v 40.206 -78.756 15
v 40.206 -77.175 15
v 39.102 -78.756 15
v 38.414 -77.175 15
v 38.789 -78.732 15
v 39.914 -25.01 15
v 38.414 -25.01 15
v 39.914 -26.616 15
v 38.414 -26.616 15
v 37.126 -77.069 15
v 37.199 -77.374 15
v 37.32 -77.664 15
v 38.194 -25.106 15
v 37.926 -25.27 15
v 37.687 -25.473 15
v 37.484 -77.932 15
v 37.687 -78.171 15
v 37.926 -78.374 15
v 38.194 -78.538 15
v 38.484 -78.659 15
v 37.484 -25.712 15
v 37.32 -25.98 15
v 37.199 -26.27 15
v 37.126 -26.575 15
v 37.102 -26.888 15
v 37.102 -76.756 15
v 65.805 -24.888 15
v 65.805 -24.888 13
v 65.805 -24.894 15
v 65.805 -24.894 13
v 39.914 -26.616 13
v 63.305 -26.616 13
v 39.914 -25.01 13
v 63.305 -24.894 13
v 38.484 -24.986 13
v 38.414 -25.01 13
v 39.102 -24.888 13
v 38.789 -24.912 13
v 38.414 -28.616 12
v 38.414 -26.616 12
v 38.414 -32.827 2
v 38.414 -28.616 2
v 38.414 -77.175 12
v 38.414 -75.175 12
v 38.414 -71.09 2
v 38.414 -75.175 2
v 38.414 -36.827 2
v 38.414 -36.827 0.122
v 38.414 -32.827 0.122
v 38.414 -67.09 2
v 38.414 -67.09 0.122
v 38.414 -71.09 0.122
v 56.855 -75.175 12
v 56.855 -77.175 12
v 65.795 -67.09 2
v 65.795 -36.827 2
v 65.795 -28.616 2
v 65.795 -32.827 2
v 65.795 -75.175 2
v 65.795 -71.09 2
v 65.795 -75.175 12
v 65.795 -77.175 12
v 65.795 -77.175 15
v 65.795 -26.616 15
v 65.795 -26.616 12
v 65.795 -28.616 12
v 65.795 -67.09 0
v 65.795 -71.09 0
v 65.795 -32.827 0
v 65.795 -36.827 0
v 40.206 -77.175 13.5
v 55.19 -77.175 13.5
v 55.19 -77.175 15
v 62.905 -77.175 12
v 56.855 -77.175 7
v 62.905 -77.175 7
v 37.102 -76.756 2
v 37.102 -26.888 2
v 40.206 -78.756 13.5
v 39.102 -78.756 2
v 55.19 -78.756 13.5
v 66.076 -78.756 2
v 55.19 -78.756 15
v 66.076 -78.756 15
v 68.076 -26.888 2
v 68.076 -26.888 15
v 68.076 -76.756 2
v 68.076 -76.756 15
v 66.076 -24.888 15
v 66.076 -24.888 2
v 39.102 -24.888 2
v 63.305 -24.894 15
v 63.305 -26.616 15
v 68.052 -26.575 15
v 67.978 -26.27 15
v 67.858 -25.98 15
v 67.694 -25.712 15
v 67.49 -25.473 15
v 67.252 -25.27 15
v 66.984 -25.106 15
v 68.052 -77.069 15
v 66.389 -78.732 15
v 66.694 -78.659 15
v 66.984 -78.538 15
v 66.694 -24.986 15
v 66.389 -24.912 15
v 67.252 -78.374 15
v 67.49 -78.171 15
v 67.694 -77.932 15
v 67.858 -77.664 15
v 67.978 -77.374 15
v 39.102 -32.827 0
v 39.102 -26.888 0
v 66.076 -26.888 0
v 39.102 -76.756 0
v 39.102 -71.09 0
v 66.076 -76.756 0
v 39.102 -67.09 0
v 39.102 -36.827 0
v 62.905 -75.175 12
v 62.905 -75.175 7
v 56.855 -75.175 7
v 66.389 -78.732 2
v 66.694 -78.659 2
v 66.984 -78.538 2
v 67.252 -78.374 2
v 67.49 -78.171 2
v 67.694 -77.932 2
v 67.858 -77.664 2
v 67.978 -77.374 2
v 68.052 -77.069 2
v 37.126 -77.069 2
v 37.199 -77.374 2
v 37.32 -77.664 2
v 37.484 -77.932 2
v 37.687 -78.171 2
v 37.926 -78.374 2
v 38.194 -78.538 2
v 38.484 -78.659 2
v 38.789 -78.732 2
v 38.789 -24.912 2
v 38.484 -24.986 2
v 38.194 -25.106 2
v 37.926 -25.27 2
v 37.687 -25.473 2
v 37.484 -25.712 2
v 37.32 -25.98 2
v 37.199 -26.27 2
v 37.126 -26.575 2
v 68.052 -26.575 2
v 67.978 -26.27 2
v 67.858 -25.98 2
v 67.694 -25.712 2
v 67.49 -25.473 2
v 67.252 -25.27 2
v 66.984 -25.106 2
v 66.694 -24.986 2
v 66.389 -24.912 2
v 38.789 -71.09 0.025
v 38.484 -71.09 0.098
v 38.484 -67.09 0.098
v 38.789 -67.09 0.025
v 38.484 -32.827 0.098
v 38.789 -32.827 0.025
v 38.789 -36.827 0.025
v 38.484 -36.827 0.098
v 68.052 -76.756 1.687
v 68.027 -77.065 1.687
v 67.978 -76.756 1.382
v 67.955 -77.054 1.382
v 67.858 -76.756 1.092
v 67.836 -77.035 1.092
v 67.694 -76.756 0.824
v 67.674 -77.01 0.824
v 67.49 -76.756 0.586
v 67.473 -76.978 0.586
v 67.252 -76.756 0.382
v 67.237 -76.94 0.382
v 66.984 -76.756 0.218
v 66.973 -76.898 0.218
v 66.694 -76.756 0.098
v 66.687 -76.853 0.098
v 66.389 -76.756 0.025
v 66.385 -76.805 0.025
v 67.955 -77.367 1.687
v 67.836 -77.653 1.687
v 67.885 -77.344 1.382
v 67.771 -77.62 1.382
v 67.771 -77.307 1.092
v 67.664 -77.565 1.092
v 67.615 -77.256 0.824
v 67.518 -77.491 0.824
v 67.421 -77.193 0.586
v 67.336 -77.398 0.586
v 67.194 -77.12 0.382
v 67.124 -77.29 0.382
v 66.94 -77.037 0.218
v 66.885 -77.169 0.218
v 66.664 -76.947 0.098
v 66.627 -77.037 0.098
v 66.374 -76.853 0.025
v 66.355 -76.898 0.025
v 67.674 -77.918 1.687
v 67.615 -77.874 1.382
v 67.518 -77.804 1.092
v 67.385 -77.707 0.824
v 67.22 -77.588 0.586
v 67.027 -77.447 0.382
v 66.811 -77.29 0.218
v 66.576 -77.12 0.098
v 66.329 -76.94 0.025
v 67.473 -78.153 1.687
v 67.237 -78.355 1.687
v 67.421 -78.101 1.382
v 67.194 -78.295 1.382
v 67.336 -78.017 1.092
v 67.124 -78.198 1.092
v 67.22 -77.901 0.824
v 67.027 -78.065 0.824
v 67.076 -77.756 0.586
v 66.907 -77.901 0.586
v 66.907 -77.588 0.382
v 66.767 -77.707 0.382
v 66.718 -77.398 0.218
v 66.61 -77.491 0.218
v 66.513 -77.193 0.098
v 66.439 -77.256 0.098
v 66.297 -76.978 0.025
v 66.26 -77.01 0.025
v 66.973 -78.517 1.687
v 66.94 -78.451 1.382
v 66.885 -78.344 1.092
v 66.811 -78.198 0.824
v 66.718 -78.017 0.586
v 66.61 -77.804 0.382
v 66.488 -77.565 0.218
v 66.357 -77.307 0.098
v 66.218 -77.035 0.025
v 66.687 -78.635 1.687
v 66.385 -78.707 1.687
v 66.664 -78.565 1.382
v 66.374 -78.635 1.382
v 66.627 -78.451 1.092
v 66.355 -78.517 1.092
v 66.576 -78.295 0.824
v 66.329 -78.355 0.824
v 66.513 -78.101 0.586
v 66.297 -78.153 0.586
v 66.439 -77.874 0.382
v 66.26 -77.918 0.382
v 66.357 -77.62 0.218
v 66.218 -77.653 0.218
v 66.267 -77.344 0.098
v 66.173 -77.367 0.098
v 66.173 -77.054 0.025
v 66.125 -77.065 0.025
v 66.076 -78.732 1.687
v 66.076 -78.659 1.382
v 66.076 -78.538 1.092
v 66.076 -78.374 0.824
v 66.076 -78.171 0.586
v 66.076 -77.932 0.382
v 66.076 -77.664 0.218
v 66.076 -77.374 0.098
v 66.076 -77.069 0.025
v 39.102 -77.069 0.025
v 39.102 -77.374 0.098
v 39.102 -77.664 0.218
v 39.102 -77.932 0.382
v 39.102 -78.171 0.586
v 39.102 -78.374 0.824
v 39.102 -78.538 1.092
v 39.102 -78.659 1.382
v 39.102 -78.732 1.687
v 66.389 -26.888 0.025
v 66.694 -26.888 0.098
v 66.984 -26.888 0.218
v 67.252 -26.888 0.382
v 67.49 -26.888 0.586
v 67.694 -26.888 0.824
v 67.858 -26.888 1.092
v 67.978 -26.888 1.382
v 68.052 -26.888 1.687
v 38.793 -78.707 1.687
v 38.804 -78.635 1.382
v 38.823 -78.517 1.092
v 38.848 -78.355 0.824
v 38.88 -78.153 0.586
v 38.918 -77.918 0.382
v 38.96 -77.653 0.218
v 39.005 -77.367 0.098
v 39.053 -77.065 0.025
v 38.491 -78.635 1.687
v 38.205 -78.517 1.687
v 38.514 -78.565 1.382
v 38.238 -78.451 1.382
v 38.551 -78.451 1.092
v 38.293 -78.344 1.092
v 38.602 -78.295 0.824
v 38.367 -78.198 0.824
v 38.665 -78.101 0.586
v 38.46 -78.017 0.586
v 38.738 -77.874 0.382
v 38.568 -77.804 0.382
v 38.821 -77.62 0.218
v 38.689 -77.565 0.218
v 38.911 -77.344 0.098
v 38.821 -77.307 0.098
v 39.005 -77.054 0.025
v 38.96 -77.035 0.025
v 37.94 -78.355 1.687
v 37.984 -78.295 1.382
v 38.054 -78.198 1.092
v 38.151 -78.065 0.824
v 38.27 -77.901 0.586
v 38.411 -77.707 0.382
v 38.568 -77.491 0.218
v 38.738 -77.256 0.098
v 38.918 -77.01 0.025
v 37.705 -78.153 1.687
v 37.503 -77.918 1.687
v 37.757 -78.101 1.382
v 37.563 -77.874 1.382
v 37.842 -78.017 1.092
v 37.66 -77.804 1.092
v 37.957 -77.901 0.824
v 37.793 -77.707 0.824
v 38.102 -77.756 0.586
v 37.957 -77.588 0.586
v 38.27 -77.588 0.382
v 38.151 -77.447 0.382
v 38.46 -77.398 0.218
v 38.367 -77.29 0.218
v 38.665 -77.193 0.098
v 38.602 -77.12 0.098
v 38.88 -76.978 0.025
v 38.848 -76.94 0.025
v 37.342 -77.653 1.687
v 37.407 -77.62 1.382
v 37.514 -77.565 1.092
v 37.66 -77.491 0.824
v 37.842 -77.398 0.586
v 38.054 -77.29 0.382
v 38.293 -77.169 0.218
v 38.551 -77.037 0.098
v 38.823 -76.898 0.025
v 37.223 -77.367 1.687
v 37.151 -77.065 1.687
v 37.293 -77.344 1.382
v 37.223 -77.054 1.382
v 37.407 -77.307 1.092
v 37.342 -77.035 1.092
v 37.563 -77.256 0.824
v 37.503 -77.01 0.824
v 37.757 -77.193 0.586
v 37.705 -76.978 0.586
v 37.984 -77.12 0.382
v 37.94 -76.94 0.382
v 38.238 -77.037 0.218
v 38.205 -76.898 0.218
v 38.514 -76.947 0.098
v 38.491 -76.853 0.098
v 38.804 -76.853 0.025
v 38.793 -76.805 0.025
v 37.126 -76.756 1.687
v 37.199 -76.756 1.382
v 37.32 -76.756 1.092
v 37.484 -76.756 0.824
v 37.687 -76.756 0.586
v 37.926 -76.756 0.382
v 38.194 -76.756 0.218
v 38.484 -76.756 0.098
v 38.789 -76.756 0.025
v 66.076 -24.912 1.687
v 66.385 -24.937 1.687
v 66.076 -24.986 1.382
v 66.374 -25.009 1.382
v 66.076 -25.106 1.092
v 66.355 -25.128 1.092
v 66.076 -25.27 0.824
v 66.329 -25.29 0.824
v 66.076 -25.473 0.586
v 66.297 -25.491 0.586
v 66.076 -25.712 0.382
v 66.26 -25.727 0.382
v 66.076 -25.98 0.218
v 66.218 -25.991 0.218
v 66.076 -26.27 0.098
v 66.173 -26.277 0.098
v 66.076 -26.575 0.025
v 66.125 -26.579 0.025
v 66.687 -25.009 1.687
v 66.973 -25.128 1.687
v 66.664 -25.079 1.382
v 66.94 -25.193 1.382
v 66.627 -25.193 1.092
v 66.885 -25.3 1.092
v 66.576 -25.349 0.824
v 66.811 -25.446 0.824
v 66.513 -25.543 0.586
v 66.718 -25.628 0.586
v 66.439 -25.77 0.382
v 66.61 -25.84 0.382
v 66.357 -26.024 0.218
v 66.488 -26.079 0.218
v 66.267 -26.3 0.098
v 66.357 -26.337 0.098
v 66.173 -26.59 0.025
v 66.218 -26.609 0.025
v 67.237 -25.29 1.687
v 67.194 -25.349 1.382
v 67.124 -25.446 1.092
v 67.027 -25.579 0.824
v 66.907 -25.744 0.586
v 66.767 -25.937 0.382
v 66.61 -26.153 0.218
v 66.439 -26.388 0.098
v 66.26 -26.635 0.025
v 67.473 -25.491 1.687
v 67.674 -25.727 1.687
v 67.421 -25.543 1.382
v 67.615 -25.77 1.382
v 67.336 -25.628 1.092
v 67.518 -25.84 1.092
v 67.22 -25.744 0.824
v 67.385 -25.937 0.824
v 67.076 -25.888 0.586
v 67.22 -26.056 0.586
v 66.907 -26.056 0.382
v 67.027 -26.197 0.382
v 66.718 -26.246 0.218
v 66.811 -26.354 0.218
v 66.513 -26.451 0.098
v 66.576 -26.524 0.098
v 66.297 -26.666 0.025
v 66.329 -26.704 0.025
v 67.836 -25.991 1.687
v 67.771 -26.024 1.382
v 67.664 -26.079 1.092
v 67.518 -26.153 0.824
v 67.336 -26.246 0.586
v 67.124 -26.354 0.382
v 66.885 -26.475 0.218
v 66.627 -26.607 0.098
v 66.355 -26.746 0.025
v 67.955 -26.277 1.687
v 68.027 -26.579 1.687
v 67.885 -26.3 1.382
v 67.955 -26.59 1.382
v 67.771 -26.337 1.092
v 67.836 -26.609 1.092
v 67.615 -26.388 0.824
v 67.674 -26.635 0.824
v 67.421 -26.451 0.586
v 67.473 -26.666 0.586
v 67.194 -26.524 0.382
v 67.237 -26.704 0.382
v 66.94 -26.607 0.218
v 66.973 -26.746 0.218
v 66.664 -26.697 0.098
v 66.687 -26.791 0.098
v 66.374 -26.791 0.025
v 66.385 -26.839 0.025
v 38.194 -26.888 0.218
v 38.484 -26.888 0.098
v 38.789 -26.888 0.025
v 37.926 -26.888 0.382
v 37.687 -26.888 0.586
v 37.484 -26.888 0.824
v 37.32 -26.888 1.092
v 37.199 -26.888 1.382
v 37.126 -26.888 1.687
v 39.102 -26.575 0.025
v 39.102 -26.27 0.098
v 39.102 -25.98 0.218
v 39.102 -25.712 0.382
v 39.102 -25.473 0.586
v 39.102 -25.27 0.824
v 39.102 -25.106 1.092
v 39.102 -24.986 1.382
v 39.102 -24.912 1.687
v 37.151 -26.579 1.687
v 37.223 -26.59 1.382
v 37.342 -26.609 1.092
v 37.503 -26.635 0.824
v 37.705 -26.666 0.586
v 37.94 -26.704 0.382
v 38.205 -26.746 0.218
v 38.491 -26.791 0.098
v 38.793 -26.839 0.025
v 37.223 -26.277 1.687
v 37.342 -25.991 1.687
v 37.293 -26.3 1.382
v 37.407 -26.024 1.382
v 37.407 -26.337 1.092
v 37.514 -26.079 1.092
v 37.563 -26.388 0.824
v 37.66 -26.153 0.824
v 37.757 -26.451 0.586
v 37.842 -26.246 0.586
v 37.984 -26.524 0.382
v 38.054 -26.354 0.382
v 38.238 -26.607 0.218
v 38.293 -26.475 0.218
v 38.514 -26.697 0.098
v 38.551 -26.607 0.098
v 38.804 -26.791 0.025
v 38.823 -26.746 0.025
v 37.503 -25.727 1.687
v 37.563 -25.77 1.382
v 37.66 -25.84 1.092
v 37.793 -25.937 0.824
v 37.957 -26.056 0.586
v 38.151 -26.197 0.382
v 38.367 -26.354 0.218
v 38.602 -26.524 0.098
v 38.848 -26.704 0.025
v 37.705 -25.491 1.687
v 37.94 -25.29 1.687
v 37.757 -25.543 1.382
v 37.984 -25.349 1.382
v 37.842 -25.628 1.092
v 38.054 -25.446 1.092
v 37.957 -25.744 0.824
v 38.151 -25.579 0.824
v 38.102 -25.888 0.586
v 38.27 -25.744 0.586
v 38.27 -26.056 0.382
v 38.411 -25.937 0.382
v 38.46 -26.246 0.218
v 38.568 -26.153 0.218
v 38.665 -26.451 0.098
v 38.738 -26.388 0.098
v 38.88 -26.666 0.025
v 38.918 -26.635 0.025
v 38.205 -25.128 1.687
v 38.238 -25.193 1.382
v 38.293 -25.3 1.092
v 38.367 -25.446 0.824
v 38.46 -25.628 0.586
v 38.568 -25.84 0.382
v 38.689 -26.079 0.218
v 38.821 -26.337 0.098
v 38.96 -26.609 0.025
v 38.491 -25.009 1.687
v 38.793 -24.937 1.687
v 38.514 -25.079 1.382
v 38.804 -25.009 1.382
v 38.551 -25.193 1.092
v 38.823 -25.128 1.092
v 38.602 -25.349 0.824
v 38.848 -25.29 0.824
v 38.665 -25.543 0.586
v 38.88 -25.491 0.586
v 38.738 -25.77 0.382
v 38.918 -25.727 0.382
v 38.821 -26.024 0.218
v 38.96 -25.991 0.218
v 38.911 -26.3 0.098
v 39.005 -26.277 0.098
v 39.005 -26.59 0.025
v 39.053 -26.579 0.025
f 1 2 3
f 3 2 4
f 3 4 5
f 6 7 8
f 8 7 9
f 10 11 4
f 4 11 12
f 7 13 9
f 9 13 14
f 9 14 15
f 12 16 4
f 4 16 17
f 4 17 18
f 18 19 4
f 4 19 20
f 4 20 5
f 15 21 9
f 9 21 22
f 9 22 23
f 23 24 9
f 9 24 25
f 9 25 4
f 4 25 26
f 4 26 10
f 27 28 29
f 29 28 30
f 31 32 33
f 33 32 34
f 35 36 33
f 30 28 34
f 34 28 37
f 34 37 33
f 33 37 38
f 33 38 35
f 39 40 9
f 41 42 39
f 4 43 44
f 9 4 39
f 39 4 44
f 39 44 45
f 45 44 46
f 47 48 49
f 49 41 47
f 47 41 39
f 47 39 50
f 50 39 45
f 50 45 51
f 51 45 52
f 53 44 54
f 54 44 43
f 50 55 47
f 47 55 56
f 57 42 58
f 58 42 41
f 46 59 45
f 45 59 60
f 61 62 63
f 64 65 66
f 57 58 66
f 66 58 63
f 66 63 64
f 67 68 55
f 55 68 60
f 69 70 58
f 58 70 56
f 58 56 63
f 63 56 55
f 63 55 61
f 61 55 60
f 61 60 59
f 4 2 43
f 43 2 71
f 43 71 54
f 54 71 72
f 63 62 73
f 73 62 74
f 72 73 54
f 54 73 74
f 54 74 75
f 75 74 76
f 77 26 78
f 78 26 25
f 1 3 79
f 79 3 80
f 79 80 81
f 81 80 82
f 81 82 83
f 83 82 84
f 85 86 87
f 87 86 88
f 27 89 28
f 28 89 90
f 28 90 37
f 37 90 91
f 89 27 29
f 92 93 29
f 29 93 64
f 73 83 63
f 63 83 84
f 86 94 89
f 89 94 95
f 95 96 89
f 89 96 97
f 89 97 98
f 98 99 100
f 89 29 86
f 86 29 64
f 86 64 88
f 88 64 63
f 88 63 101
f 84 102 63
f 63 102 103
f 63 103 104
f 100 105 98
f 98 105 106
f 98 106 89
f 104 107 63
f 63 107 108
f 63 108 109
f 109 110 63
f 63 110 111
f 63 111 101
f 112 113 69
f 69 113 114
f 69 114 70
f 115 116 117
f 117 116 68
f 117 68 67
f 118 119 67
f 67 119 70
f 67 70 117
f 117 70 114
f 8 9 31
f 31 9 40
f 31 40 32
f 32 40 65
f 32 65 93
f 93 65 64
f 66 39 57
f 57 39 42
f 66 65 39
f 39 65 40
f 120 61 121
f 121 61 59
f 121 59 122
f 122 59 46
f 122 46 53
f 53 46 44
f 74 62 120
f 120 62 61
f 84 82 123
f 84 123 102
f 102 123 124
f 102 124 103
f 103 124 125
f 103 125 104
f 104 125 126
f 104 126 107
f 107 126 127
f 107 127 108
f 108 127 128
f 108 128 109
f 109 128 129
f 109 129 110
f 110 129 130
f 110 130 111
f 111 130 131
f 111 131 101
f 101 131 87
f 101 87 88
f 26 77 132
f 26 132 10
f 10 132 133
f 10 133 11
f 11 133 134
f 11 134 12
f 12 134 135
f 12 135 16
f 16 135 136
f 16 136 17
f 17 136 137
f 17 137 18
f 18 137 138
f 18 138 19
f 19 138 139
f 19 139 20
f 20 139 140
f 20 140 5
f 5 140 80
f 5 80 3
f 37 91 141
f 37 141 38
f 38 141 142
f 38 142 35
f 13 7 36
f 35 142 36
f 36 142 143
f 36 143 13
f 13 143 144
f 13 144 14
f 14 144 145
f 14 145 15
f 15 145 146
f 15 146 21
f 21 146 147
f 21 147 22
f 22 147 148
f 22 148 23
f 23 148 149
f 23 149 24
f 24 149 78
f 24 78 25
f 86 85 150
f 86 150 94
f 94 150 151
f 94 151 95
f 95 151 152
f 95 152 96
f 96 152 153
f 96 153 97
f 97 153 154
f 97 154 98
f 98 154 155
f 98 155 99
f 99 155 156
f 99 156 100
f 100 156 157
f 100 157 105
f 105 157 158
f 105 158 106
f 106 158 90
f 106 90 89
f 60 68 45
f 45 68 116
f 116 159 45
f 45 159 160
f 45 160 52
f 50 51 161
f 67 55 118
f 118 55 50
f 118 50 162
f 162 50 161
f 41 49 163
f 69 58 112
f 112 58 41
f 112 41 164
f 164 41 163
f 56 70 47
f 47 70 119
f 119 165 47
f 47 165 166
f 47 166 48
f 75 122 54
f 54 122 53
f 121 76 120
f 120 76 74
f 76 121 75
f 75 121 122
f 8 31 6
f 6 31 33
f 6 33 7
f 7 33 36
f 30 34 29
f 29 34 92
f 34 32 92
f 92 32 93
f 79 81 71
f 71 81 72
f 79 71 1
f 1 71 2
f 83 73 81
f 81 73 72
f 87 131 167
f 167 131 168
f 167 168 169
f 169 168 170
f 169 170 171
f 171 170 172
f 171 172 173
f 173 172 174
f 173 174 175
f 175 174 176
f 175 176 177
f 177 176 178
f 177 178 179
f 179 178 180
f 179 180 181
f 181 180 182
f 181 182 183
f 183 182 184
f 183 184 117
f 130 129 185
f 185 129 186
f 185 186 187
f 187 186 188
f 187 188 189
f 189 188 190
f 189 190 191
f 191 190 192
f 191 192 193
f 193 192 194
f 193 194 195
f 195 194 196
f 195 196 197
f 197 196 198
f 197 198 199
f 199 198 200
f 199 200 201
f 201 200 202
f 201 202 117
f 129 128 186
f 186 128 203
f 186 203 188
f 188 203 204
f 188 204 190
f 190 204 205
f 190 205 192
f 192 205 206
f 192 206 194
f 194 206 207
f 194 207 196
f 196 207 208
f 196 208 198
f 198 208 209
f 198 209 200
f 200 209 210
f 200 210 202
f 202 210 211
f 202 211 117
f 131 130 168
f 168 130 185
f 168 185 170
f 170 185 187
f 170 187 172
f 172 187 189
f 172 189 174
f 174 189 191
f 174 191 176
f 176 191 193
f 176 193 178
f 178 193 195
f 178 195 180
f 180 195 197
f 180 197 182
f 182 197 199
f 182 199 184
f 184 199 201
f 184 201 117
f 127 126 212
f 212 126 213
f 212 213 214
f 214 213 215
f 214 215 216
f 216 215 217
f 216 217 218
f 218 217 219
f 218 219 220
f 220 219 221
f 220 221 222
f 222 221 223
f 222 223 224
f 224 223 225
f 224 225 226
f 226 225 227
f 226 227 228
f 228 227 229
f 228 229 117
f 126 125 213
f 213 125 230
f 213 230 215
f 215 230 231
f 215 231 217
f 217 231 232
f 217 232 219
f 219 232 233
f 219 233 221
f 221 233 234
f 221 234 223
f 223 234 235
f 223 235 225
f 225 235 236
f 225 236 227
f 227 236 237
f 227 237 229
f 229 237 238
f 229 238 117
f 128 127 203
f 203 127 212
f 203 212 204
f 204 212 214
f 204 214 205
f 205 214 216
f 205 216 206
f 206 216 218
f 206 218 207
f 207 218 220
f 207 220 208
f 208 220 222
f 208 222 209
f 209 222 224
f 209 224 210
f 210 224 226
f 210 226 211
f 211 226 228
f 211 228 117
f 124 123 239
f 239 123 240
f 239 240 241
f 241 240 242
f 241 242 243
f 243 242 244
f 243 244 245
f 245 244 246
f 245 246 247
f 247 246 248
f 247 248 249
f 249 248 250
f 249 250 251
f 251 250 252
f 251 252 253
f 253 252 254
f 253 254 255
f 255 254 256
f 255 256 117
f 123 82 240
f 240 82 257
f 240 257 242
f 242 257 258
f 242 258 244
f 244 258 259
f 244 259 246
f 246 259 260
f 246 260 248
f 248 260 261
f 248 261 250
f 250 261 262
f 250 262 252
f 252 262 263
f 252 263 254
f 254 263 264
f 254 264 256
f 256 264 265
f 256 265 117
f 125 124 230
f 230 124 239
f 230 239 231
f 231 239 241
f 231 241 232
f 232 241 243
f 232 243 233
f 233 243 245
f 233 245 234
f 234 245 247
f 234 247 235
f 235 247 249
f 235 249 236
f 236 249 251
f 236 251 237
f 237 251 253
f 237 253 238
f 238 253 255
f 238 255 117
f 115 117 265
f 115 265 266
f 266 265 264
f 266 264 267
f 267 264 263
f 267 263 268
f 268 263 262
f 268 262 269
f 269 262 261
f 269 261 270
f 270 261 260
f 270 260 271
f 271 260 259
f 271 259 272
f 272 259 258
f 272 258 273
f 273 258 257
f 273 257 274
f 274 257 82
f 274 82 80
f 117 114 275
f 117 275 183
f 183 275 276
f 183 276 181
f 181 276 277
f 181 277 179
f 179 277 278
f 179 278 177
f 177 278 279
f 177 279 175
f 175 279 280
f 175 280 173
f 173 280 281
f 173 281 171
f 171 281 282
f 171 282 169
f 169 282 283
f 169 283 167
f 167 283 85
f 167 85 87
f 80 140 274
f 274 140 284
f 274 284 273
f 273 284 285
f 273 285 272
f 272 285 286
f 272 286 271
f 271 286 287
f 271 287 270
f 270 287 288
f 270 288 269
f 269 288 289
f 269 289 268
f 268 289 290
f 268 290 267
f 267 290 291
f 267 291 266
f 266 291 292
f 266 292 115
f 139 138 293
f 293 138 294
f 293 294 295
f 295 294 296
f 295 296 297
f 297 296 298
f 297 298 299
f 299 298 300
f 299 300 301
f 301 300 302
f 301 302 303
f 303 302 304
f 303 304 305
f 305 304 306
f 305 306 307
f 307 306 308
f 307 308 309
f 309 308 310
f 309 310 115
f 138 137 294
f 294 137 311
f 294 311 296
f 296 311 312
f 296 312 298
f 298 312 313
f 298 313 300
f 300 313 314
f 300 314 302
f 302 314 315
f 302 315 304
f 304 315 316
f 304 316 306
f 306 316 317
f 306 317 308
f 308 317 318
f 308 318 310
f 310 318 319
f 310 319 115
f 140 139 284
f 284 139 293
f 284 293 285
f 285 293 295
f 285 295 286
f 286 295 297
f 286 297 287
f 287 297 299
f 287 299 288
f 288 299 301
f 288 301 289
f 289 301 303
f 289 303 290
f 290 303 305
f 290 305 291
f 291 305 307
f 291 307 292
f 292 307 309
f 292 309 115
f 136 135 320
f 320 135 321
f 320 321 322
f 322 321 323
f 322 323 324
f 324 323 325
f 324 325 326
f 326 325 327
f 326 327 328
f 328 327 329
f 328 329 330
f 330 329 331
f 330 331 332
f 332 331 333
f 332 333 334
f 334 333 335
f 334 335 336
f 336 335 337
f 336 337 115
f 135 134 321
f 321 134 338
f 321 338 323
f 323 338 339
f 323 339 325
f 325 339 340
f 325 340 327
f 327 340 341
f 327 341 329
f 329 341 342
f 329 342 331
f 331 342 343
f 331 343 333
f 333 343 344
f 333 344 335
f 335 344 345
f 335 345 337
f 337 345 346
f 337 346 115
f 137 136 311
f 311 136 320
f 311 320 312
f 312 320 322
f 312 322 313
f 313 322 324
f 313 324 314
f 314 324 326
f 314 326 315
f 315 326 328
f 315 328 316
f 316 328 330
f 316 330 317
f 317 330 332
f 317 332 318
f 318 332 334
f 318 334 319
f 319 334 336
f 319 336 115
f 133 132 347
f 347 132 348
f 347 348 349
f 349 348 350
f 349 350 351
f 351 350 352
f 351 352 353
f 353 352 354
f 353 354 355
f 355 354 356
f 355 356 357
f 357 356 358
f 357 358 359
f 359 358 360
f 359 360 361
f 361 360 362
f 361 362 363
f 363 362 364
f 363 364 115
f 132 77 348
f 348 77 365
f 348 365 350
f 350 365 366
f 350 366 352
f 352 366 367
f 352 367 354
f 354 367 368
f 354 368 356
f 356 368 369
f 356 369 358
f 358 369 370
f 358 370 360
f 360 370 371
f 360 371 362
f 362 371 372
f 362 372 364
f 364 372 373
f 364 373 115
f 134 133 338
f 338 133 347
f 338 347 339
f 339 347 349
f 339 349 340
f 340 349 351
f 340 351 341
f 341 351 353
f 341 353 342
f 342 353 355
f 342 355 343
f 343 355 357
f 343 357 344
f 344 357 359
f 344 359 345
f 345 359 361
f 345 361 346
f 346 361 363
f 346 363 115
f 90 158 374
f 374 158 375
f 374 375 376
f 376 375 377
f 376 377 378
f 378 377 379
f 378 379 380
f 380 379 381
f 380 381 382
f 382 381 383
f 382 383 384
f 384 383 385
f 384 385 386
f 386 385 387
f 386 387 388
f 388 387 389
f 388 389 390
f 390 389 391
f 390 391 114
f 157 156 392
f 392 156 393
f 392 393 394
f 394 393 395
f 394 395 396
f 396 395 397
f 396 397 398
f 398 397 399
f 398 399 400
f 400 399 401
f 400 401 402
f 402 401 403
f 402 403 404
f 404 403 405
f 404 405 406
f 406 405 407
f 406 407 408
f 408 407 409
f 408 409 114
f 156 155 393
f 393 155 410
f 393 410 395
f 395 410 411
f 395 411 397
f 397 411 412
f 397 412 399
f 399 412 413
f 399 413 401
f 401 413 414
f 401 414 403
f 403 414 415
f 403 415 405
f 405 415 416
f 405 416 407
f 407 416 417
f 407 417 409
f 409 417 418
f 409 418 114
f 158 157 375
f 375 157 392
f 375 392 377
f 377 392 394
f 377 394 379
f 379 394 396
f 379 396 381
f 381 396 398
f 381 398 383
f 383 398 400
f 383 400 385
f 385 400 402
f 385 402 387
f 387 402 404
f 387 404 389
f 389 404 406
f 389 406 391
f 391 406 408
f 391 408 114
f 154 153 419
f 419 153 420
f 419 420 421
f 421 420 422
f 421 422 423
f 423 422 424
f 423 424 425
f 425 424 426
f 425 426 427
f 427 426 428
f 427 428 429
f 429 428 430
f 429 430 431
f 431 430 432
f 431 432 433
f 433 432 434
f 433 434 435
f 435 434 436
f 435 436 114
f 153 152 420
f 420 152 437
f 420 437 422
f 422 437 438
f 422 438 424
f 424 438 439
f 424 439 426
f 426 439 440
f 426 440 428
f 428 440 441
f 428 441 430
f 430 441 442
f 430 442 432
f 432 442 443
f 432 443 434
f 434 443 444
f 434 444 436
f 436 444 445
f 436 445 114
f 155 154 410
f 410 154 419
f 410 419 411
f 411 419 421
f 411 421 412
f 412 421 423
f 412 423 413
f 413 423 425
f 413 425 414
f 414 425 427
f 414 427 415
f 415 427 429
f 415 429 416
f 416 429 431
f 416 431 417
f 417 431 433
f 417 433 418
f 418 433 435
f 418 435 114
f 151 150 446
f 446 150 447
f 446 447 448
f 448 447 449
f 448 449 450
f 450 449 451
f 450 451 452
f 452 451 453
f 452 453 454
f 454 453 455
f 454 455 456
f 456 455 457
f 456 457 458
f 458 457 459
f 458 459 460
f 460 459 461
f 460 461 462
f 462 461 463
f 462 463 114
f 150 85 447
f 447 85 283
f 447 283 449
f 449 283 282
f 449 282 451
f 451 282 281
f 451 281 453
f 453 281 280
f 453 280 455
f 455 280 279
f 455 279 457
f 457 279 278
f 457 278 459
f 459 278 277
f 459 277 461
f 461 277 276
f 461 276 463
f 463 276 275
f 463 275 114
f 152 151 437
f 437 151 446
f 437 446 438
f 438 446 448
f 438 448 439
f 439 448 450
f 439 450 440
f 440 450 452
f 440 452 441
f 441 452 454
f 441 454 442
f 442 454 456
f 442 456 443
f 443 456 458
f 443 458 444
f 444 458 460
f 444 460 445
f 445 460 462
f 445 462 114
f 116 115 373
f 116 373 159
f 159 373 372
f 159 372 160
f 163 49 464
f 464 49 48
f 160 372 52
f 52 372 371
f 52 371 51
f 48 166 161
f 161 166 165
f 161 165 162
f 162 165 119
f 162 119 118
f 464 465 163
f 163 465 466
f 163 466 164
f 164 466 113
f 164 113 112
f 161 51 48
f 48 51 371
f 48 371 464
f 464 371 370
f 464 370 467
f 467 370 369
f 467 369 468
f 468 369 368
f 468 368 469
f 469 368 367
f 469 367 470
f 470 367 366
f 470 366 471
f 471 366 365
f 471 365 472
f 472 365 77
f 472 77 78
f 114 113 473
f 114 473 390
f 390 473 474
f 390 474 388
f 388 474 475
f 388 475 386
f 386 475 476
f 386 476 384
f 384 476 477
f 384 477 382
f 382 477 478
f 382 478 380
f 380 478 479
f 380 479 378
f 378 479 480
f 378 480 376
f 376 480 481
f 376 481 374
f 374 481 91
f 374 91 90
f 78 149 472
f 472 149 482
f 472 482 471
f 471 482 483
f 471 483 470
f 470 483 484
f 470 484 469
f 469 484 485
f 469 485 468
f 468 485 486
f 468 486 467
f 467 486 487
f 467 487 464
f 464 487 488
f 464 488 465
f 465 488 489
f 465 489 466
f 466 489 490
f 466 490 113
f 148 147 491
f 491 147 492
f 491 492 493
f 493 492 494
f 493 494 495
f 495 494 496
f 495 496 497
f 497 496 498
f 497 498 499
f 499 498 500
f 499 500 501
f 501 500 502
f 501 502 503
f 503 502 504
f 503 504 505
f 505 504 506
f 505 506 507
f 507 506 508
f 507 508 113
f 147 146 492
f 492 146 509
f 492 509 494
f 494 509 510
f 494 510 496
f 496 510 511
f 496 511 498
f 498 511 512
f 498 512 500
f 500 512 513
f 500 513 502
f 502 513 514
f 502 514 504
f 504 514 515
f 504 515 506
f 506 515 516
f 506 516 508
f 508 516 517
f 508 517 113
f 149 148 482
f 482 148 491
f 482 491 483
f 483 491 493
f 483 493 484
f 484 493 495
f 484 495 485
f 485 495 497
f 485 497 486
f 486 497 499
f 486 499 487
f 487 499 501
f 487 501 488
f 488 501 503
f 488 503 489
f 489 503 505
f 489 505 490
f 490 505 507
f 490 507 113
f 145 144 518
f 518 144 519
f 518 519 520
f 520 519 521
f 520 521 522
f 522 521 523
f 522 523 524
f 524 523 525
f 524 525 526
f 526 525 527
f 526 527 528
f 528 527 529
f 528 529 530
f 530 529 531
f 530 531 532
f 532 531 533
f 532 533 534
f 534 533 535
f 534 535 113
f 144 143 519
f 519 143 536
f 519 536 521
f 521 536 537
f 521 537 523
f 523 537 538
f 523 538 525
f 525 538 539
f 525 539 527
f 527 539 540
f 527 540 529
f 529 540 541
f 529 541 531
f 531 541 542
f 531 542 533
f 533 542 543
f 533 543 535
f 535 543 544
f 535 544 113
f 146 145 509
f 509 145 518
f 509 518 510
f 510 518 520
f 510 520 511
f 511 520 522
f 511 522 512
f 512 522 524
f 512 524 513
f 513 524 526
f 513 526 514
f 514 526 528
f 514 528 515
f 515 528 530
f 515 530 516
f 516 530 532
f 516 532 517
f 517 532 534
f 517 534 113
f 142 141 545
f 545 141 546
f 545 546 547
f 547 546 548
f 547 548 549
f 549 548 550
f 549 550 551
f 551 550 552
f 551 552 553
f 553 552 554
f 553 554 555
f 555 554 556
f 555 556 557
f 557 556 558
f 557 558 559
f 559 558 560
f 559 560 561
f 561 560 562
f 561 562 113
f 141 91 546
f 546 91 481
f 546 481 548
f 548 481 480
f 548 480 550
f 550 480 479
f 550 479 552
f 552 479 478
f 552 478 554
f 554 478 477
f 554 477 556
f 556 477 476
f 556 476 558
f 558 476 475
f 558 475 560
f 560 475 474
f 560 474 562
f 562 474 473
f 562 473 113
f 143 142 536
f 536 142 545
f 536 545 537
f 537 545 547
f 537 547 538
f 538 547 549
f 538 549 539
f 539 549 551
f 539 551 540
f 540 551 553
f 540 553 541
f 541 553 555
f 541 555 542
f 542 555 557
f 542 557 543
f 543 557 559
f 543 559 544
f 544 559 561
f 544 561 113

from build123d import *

# Parameters (mm, degrees)
SKETCH_3_W          = 30.97465329
SKETCH_3_H          = 53.868777402
EXTRUDE_1_DEPTH     = 15
SKETCH_5_W          = 27.381586342
SKETCH_5_H          = 50.559171176
CUT_EXTRUDE_1_DEPTH = 13
SKETCH_6_W          = 27.381586342
SKETCH_6_H          = 2
EXTRUDE_2_DEPTH     = 10
SKETCH_9_W          = 27.390957387
SKETCH_9_H          = 1.728490609
CUT_EXTRUDE_3_DEPTH = 2
FILLET_1_R          = 2
SKETCH_11_W         = 27.381586342
SKETCH_11_H         = 4
CUT_EXTRUDE_4_DEPTH = 10
SKETCH_12_W         = 6.049826212
SKETCH_12_H         = 2
CUT_EXTRUDE_5_DEPTH = 5
SKETCH_14_W         = 1.5
SKETCH_14_H         = 1.606542801
SKETCH_14_W_2       = 2.5
SKETCH_14_H_2       = 1.721797648
EXTRUDE_3_DEPTH     = 2
SKETCH_17_W         = 14.984382514
SKETCH_17_H         = 1.6
CUT_EXTRUDE_8_DEPTH = 1.5
FILLET_2_R          = 2


with BuildPart() as part:
    # 草图3 → 凸台-拉伸1 (new body)
    with BuildSketch(Plane.XY):
        with Locations((52.588905184, -51.822040042)):
            Rectangle(SKETCH_3_W, SKETCH_3_H)
    extrude(amount=EXTRUDE_1_DEPTH)

    # 草图5 → 切除-拉伸1 (cut)
    with BuildSketch(Plane.XY.offset(15)):
        with Locations((52.104679946, -51.895727538)):
            Rectangle(SKETCH_5_W, SKETCH_5_H)
    extrude(amount=-CUT_EXTRUDE_1_DEPTH, mode=Mode.SUBTRACT)

    # 草图6 → 凸台-拉伸2 (add)
    with BuildSketch(Plane.XY.offset(2)):
        with Locations((52.104679946, -27.61614195)):
            Rectangle(SKETCH_6_W, SKETCH_6_H)
        with Locations((52.104679946, -76.175313126)):
            Rectangle(SKETCH_6_W, SKETCH_6_H)
    extrude(amount=EXTRUDE_2_DEPTH)

    # 草图9 → 切除-拉伸3 (cut)
    with BuildSketch(Plane.XY.offset(15)):
        with Locations((52.109365469, -25.751896646)):
            Rectangle(SKETCH_9_W, SKETCH_9_H)
    extrude(amount=-CUT_EXTRUDE_3_DEPTH, mode=Mode.SUBTRACT)

    # 圆角1
    fillet_1_edges = [part.edges().sort_by_distance(p)[0] for p in [
        (68.076231829, -78.756428743, 7.5),
        (37.101578539, -78.756428743, 7.5),
        (37.101578539, -24.887651341, 7.5),
        (68.076231829, -24.887651341, 7.5),
    ]]
    fillet(fillet_1_edges, radius=FILLET_1_R)

    # 草图11 → 切除-拉伸4 (cut)
    with BuildSketch(Plane.XY.offset(2)):
        with Locations((52.104679946, -34.827114549)):
            Rectangle(SKETCH_11_W, SKETCH_11_H)
        with Locations((52.104679946, -69.090328525)):
            Rectangle(SKETCH_11_W, SKETCH_11_H)
    extrude(amount=-CUT_EXTRUDE_4_DEPTH, mode=Mode.SUBTRACT)

    # 草图12 → 切除-拉伸5 (cut)
    with BuildSketch(Plane.XY.offset(12)):
        with Locations((59.879933224, -76.175313126)):
            Rectangle(SKETCH_12_W, SKETCH_12_H)
    extrude(amount=-CUT_EXTRUDE_5_DEPTH, mode=Mode.SUBTRACT)

    # 草图14 → 凸台-拉伸3 (add)
    with BuildSketch(Plane.XY.offset(13)):
        with Locations((39.163886775, -25.81287055)):
            Rectangle(SKETCH_14_W, SKETCH_14_H)
        with Locations((64.554844162, -25.755243126)):
            Rectangle(SKETCH_14_W_2, SKETCH_14_H_2)
    extrude(amount=EXTRUDE_3_DEPTH)

    # 草图17 → 切除-拉伸8 (cut)
    with BuildSketch(Plane.XY.offset(15)):
        with Locations((47.697888967, -77.956428743)):
            Rectangle(SKETCH_17_W, SKETCH_17_H)
    extrude(amount=-CUT_EXTRUDE_8_DEPTH, mode=Mode.SUBTRACT)

    # 圆角2
    # the kernel refuses this fillet: 2 mm, written as the material it takes off along each edge
    with BuildSketch(Plane(origin=(39.101578539, -26.887651341, 0), x_dir=(0, 1, 0), z_dir=(1, 0, 0))) as fillet_2_piece_1:
        with BuildLine():
            CenterArc((2 - FILLET_2_R, FILLET_2_R), FILLET_2_R, 270, 90)
            Line((2, FILLET_2_R), (2, 0))
            Line((2, 0), (2 - FILLET_2_R, 0))
        make_face()
    revolve(axis=Axis((39.101578539, -26.887651341, 0), (0, 0, 1)), revolution_arc=90, mode=Mode.SUBTRACT)
    with BuildSketch(Plane(origin=(37.101578539, -76.756428743, 0), x_dir=(1, 0, 0), z_dir=(0, 1, 0)), Plane(origin=(68.076231829, -26.887651341, 0), x_dir=(-1, 0, 0), z_dir=(0, -1, 0))) as fillet_2_piece_2:
        with BuildLine():
            CenterArc((FILLET_2_R, -FILLET_2_R), FILLET_2_R, 90, 90)
            Line((0, -FILLET_2_R), (0, 0))
            Line((0, 0), (FILLET_2_R, 0))
        make_face()
    extrude(amount=49.868777401, mode=Mode.SUBTRACT)
    with BuildSketch(Plane(origin=(39.101578539, -76.756428743, 0), x_dir=(-1, 0, 0), z_dir=(0, 1, 0))) as fillet_2_piece_3:
        with BuildLine():
            CenterArc((2 - FILLET_2_R, FILLET_2_R), FILLET_2_R, 270, 90)
            Line((2, FILLET_2_R), (2, 0))
            Line((2, 0), (2 - FILLET_2_R, 0))
        make_face()
    revolve(axis=Axis((39.101578539, -76.756428743, 0), (0, 0, 1)), revolution_arc=90, mode=Mode.SUBTRACT)
    with BuildSketch(Plane(origin=(66.076231829, -78.756428743, 0), x_dir=(0, 1, 0), z_dir=(-1, 0, 0))) as fillet_2_piece_4:
        with BuildLine():
            CenterArc((FILLET_2_R, -FILLET_2_R), FILLET_2_R, 90, 90)
            Line((0, -FILLET_2_R), (0, 0))
            Line((0, 0), (FILLET_2_R, 0))
        make_face()
    extrude(amount=26.974653289, mode=Mode.SUBTRACT)
    with BuildSketch(Plane(origin=(66.076231829, -76.756428743, 0), x_dir=(0, -1, 0), z_dir=(-1, 0, 0))) as fillet_2_piece_5:
        with BuildLine():
            CenterArc((2 - FILLET_2_R, FILLET_2_R), FILLET_2_R, 270, 90)
            Line((2, FILLET_2_R), (2, 0))
            Line((2, 0), (2 - FILLET_2_R, 0))
        make_face()
    revolve(axis=Axis((66.076231829, -76.756428743, 0), (0, 0, 1)), revolution_arc=90, mode=Mode.SUBTRACT)
    with BuildSketch(Plane(origin=(66.076231829, -26.887651341, 0), x_dir=(0, 1, 0), z_dir=(-1, 0, 0))) as fillet_2_piece_6:
        with BuildLine():
            CenterArc((2 - FILLET_2_R, -FILLET_2_R), FILLET_2_R, 0, 90)
            Line((2, -FILLET_2_R), (2, 0))
            Line((2, 0), (2 - FILLET_2_R, 0))
        make_face()
    revolve(axis=Axis((66.076231829, -26.887651341, 0), (0, 0, -1)), revolution_arc=90, mode=Mode.SUBTRACT)
    with BuildSketch(Plane(origin=(39.101578539, -24.887651341, 0), x_dir=(0, 0, 1), z_dir=(1, 0, 0))) as fillet_2_piece_7:
        with BuildLine():
            CenterArc((FILLET_2_R, FILLET_2_R), FILLET_2_R, 180, 90)
            Line((0, FILLET_2_R), (0, 0))
            Line((0, 0), (FILLET_2_R, 0))
        make_face()
    extrude(amount=26.974653289, mode=Mode.SUBTRACT)


solid = part.part
